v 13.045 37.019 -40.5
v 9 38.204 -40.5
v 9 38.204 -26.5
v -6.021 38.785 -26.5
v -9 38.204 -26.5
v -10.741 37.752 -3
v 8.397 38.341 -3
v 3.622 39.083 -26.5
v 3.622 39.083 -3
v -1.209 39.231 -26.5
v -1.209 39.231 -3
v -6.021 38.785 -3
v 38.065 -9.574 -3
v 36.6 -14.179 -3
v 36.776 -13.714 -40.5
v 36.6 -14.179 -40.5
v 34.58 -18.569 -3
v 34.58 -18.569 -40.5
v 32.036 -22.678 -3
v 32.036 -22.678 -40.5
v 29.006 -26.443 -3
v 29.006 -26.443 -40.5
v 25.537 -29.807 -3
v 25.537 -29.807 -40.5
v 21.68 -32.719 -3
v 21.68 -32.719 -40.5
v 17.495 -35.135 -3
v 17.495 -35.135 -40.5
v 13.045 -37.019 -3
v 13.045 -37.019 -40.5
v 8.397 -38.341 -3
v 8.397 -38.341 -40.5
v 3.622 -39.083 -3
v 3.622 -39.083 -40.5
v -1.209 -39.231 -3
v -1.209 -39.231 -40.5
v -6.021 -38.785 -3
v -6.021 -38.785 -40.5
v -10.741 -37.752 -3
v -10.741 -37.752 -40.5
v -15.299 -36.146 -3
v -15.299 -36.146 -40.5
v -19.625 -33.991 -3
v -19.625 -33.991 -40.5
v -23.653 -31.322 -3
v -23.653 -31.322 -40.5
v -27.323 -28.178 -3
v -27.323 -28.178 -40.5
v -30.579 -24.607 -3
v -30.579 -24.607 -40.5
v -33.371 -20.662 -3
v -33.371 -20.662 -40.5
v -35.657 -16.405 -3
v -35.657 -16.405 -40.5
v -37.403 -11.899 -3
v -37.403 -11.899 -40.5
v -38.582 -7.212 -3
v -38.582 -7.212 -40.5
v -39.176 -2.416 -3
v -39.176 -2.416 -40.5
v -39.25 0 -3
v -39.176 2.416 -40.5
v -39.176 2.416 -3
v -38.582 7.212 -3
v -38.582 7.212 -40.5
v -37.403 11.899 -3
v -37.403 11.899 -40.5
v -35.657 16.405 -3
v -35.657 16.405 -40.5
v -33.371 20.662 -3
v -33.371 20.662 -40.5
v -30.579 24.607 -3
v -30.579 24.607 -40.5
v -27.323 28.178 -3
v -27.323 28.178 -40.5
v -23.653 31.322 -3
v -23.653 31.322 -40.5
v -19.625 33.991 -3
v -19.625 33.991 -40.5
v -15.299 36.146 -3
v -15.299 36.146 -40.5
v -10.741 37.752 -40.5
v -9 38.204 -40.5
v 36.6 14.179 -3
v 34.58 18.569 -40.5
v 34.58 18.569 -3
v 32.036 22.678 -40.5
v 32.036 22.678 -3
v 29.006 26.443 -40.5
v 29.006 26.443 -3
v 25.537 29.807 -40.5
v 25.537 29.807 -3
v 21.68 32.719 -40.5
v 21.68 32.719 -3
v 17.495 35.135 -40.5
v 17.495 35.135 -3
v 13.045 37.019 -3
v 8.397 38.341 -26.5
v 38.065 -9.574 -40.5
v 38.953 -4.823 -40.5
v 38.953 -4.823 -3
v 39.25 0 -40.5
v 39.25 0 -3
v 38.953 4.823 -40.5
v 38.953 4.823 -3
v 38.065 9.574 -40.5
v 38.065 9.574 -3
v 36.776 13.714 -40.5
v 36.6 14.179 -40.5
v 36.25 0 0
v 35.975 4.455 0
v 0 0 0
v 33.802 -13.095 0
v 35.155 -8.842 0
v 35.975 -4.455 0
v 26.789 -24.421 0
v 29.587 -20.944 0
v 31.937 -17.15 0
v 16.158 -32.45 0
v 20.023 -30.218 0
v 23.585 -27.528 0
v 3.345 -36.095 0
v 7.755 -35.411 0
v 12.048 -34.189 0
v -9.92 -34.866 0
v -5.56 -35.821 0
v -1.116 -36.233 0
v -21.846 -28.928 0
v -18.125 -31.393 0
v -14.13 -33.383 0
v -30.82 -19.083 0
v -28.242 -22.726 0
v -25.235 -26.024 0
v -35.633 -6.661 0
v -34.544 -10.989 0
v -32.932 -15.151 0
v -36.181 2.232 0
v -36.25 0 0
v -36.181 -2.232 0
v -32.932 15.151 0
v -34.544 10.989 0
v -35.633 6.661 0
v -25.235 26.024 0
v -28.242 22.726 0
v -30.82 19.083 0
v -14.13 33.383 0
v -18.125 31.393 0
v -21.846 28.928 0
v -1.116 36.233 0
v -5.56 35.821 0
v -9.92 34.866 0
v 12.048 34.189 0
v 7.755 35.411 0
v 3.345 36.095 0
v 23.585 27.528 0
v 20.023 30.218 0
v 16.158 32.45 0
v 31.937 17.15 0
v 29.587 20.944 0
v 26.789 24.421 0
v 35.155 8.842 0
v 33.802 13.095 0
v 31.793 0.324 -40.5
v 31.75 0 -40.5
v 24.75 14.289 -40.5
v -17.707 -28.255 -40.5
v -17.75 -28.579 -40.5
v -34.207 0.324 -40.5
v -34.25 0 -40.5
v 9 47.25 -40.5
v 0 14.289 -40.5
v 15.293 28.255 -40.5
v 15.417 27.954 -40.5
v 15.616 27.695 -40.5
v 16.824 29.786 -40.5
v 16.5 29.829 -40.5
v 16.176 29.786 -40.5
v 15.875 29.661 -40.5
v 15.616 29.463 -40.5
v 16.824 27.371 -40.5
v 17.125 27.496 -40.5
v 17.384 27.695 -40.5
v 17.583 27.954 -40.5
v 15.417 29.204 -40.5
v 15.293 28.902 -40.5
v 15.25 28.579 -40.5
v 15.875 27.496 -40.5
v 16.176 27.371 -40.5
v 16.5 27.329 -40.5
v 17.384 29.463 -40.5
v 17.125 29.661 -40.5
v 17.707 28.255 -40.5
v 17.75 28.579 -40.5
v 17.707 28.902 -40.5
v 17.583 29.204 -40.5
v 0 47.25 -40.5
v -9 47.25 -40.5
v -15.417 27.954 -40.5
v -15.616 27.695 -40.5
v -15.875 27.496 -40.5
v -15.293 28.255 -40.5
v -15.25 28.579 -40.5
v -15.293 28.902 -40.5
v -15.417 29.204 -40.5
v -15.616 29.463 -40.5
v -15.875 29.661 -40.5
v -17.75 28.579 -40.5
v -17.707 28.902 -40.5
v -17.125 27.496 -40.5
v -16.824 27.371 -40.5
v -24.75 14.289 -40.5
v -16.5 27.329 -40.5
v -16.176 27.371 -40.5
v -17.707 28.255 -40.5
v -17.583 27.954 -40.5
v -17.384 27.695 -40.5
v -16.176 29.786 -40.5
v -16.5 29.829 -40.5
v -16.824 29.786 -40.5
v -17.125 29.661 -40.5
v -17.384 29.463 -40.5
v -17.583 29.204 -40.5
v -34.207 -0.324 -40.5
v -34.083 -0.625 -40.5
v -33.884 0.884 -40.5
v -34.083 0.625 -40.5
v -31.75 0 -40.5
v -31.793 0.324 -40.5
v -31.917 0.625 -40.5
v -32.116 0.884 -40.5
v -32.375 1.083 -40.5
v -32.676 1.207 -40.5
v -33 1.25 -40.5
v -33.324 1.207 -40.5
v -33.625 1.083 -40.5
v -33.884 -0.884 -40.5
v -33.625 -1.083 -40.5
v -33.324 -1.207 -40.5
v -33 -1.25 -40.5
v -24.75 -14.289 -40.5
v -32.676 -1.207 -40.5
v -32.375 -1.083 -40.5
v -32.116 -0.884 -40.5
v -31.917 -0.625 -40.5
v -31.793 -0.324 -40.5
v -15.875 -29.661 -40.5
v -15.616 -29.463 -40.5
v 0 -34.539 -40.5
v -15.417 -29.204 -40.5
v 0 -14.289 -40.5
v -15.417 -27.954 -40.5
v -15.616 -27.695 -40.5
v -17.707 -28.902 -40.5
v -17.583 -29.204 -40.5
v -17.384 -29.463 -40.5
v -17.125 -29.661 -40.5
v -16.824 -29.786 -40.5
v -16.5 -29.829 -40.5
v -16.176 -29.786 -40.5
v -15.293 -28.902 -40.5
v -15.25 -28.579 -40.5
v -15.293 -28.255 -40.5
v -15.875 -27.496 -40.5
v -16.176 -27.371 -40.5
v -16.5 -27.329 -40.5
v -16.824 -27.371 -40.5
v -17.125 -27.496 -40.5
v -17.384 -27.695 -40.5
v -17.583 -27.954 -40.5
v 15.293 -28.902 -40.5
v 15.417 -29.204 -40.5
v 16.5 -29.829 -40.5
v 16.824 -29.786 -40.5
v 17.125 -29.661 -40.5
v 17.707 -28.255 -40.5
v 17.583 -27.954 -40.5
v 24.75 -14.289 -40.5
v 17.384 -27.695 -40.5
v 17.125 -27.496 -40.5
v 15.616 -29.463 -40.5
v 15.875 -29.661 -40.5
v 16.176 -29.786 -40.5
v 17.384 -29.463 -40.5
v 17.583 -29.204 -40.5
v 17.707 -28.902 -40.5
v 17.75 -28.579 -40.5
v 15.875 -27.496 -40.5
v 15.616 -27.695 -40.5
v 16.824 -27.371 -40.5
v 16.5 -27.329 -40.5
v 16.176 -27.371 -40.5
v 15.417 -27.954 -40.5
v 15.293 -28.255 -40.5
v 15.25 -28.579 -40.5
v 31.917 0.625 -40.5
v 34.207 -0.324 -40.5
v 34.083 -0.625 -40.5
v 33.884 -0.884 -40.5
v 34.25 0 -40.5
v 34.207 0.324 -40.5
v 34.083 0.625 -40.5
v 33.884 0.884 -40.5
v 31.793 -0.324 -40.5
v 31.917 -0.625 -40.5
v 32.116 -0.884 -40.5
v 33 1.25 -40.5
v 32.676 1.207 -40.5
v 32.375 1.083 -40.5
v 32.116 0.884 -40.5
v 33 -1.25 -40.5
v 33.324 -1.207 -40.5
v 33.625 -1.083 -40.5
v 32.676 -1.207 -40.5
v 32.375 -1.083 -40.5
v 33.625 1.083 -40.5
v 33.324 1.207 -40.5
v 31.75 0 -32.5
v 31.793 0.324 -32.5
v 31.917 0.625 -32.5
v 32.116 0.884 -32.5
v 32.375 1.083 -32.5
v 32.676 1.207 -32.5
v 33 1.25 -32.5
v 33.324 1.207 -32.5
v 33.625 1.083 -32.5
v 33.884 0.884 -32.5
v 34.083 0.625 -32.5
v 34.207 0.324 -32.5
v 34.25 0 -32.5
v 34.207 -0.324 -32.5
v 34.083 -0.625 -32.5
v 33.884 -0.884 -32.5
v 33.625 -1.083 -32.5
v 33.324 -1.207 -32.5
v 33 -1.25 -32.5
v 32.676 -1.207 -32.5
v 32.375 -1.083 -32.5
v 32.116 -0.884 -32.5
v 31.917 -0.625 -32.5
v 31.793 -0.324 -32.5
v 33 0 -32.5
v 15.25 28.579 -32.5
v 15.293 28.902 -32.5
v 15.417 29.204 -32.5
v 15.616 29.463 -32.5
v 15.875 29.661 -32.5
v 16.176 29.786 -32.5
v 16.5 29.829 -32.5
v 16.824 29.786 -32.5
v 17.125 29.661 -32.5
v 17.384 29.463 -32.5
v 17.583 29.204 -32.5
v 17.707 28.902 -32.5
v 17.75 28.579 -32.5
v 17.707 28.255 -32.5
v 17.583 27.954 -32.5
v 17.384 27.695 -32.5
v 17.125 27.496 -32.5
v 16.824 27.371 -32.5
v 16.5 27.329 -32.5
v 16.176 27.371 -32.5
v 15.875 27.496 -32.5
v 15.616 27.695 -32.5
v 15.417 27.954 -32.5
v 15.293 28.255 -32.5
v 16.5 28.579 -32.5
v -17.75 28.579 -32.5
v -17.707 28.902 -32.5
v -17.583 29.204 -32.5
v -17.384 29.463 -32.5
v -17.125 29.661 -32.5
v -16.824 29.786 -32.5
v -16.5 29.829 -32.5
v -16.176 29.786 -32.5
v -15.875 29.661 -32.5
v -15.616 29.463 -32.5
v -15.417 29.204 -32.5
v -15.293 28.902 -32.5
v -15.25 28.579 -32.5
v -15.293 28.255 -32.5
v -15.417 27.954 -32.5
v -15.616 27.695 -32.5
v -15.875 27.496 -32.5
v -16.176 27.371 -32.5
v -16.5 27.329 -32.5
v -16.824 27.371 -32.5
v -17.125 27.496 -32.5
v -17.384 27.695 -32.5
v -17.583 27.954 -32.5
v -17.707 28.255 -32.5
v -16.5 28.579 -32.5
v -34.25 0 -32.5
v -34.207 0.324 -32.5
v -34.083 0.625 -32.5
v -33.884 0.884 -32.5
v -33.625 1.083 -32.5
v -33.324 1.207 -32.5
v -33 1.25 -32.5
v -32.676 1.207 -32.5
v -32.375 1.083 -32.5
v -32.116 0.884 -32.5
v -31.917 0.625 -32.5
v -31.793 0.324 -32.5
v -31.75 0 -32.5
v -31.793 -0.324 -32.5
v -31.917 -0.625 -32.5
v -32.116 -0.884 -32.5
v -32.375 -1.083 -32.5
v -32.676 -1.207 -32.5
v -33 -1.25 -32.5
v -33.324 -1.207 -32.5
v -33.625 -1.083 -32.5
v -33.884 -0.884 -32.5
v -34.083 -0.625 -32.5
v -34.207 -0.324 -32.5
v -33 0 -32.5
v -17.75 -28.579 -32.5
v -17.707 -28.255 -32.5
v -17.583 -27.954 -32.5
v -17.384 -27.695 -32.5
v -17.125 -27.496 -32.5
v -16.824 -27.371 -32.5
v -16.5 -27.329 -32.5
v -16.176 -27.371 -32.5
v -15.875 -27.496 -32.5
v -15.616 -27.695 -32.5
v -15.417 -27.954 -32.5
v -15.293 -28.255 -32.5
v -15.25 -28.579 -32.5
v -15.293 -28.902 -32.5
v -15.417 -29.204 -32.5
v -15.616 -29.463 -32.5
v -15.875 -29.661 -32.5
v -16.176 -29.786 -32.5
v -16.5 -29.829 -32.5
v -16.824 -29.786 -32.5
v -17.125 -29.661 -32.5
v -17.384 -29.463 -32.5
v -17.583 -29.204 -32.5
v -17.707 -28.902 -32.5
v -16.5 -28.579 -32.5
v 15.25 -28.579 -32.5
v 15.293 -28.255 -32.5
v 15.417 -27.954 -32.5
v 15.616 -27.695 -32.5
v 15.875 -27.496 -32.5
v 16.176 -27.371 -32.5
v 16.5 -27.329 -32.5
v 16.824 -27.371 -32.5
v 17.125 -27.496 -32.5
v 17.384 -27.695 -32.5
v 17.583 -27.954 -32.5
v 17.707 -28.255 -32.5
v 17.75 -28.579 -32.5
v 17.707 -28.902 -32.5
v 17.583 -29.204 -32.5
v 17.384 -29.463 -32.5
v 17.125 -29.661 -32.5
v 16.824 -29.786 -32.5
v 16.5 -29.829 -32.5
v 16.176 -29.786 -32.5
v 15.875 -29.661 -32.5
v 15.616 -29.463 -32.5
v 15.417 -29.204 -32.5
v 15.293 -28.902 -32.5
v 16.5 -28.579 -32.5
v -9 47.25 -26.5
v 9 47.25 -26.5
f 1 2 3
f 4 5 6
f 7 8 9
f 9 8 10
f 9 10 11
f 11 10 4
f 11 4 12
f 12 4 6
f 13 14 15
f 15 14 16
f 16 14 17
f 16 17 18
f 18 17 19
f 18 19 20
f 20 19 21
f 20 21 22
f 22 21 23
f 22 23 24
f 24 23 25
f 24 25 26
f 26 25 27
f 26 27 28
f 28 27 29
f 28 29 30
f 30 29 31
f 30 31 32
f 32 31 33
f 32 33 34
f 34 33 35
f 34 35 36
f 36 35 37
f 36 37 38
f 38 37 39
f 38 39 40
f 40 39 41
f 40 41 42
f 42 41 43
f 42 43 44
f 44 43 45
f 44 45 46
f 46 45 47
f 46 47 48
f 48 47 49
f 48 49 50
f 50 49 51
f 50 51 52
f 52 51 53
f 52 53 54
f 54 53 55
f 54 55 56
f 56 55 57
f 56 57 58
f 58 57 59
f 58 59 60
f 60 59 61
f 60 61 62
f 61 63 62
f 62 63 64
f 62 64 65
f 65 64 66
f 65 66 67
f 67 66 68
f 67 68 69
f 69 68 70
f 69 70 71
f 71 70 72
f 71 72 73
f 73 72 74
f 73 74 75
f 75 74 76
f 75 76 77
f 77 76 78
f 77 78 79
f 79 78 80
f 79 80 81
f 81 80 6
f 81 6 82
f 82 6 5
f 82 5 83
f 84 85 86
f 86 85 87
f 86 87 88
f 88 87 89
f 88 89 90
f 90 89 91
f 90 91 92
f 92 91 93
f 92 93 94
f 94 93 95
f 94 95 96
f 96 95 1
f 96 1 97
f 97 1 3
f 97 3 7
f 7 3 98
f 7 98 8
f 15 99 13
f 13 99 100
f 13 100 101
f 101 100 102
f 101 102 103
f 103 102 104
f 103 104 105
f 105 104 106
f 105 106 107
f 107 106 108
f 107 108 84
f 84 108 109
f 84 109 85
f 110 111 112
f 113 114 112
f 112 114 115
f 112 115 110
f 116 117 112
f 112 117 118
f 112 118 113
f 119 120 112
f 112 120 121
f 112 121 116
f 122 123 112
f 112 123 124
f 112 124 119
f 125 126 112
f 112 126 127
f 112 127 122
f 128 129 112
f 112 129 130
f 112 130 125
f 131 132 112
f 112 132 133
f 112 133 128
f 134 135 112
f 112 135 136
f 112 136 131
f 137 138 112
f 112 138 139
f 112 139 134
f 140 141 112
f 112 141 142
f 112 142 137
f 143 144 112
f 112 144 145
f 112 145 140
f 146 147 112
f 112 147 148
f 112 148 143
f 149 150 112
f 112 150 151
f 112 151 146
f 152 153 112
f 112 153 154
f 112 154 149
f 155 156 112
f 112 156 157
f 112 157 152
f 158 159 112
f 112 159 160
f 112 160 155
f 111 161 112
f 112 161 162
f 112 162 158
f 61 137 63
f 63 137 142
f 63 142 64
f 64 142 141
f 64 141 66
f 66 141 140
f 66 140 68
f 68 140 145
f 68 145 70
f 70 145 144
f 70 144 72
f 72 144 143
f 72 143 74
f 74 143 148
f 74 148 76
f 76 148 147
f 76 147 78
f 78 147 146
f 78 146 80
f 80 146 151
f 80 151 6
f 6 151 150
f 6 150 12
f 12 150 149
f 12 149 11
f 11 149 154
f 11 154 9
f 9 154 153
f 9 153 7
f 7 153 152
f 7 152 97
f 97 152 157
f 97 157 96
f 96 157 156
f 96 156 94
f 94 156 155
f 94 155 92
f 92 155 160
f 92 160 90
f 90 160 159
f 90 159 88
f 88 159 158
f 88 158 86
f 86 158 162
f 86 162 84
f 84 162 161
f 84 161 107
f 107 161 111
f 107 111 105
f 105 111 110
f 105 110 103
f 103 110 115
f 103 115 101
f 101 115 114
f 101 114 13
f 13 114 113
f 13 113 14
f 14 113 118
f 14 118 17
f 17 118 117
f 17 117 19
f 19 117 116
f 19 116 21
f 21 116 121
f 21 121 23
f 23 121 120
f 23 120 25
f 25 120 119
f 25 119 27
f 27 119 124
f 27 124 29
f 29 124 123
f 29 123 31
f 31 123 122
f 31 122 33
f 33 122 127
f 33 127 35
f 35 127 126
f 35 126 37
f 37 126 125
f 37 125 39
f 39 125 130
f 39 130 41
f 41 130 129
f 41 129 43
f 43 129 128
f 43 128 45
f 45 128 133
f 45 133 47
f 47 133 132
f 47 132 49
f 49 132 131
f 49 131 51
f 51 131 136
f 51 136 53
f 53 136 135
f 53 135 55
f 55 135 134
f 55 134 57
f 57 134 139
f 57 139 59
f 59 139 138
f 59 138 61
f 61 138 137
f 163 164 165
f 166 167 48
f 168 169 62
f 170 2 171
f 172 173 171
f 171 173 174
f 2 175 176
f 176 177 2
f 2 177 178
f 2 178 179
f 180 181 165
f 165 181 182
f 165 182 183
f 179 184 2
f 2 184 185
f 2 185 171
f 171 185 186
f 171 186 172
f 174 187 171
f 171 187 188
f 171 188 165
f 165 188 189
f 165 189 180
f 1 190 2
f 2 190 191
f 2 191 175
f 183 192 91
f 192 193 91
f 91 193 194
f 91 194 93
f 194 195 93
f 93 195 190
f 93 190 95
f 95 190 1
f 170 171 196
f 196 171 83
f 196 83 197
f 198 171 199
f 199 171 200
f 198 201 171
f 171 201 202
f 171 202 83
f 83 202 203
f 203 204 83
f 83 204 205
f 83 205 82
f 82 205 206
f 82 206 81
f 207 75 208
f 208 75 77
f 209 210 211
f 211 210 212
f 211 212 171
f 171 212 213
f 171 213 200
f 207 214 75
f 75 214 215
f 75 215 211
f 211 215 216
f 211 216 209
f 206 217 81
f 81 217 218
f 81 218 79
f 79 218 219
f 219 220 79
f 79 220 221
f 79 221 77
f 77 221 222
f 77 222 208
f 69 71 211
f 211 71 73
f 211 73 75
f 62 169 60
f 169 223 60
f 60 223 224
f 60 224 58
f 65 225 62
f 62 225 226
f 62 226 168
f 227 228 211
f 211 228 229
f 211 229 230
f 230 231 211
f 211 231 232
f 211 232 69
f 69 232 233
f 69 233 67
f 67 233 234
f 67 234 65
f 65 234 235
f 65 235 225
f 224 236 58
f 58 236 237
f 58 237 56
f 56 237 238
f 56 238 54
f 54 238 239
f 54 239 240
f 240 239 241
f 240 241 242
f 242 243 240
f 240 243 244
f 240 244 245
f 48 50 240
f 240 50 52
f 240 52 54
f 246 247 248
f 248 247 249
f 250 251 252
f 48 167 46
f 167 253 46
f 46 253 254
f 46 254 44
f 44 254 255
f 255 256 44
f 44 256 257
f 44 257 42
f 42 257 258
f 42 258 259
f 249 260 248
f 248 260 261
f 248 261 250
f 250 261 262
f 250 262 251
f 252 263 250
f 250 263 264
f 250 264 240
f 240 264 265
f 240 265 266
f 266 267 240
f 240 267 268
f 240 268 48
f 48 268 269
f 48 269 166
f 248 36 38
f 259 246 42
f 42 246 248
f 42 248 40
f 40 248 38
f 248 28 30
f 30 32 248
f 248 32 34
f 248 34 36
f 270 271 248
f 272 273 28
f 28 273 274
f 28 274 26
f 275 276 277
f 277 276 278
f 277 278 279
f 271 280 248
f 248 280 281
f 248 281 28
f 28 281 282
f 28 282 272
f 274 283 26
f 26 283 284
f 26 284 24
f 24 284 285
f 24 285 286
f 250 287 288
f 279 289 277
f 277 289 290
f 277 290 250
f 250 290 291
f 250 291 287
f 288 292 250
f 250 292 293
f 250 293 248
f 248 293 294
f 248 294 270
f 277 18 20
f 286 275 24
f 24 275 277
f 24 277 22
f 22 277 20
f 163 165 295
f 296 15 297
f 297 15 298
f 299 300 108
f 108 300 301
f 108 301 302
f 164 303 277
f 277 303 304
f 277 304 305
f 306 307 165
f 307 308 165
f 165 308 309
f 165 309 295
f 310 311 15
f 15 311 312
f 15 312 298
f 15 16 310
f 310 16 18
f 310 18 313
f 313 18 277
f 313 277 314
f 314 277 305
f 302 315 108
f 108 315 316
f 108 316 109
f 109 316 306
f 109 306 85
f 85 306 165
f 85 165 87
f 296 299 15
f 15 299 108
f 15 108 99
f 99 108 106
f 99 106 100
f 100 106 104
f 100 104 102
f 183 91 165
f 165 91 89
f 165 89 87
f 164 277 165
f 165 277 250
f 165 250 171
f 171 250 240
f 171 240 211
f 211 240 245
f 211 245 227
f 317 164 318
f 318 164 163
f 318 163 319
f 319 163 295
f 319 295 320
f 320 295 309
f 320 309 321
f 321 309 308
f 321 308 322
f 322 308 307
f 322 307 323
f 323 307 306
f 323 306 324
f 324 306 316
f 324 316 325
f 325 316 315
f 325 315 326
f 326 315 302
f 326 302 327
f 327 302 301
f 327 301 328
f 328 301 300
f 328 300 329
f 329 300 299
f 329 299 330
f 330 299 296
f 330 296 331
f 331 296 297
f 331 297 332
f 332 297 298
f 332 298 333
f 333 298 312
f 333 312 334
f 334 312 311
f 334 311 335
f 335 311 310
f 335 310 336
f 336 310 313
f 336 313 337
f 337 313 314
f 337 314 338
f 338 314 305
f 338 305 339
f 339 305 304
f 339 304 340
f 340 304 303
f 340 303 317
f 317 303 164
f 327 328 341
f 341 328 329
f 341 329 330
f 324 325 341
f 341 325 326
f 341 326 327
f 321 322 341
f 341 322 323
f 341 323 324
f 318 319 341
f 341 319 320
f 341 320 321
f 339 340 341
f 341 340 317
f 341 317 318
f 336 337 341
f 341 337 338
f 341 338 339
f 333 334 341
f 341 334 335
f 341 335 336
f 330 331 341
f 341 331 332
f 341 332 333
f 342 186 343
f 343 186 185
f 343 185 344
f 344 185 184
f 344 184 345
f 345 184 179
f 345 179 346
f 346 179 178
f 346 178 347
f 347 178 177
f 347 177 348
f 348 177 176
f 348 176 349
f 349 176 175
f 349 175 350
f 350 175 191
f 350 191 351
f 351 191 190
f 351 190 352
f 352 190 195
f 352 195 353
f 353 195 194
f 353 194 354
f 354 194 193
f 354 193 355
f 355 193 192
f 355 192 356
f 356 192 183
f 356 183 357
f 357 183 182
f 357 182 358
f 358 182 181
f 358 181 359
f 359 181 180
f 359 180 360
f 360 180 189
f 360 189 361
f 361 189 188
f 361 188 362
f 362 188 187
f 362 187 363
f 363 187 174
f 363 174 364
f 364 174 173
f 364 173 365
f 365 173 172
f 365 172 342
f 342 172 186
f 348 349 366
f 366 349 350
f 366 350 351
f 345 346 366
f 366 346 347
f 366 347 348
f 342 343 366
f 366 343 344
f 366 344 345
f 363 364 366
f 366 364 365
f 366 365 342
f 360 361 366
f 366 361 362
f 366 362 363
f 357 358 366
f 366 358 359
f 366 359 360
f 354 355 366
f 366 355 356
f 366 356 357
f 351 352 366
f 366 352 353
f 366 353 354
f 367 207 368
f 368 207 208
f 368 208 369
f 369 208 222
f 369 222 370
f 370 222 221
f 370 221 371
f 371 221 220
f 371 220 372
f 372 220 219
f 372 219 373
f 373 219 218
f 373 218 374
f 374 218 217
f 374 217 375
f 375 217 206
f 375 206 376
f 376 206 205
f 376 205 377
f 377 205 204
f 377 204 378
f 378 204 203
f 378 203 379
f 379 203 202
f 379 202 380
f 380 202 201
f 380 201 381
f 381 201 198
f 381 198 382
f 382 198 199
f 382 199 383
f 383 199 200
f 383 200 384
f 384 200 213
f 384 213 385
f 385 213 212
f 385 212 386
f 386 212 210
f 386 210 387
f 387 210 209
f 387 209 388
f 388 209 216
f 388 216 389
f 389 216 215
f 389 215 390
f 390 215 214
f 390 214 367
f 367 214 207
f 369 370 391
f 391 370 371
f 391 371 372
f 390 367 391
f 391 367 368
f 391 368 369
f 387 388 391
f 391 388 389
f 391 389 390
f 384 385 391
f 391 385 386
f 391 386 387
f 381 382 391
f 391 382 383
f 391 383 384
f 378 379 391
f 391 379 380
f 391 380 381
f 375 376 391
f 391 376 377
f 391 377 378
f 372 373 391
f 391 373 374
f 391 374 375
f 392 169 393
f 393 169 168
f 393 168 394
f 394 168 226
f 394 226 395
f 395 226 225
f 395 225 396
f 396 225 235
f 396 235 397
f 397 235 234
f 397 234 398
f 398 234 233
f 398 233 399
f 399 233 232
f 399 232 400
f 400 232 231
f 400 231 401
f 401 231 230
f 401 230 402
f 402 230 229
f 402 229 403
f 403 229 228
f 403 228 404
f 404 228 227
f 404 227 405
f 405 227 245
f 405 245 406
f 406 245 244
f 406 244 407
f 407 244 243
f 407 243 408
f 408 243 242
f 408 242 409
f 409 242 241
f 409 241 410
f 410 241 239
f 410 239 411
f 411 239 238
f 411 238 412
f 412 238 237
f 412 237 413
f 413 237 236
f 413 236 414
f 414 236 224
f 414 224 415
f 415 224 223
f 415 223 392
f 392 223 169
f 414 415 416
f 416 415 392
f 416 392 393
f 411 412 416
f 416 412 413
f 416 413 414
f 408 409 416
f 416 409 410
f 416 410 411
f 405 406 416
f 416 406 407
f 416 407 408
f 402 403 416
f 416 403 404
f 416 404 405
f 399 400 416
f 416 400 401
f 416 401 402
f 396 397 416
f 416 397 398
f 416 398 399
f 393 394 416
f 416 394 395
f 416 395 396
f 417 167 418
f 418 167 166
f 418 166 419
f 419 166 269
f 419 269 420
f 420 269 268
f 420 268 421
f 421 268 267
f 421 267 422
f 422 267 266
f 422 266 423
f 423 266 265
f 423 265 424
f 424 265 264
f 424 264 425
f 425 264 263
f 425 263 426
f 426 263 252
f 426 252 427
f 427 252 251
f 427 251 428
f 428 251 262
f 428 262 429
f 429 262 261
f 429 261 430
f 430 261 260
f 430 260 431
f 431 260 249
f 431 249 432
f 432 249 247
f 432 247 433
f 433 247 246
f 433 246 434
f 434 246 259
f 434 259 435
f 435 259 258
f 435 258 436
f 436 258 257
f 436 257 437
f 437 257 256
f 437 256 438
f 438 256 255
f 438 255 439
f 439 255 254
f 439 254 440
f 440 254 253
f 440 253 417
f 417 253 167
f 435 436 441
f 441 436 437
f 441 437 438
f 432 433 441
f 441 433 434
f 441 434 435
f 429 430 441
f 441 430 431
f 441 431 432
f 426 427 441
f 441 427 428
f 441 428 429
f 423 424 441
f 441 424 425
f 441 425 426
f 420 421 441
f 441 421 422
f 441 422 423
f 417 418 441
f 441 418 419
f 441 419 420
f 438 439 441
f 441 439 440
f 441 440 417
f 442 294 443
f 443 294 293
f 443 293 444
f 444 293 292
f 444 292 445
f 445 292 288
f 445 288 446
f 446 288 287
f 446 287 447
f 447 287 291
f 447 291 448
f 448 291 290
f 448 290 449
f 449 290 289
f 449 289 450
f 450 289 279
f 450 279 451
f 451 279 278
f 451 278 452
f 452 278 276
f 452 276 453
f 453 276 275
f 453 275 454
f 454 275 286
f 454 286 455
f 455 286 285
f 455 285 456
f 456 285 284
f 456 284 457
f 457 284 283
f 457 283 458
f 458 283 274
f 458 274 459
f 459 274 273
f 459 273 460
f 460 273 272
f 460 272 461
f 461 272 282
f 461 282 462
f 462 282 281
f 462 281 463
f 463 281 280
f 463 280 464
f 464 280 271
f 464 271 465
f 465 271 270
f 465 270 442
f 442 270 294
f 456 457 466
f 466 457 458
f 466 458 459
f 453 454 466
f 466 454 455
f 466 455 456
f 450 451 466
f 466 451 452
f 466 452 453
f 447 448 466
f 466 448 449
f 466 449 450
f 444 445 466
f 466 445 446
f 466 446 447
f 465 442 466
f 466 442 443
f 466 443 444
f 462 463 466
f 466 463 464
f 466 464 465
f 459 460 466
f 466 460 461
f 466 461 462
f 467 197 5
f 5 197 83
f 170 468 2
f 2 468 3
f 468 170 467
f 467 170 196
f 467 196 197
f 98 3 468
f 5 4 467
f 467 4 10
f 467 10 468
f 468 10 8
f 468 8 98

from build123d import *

# Parameters (mm, degrees)
SK_REARHOLE_R           = 1.25
REAR_TAPPED_HOLE_DEPTH  = 8
REAR_HOLE_PATTERN_COUNT = 6
SK_CONNECTOR_W          = 18
SK_CONNECTOR_H          = 12
CONNECTOR_ZONE_DEPTH    = 14


with BuildPart() as part:
    # SK_Body → Housing_Body (revolve)
    with BuildSketch(Plane(origin=(0, 0, 0), x_dir=(1, 0, 0), z_dir=(0, 1, 0))):
        Polygon((0, 0), (36.25, 0), (39.25, 3), (39.25, 40.5), (36.25, 40.5), (0, 40.5), align=None)
    revolve(axis=Axis((0, 0, 10), (0, 0, -1)))

    # SK_RearHole → Rear_Tapped_Hole (cut)
    with BuildSketch(Plane.XY.offset(-40.5)):
        with Locations((33, 0)):
            Circle(SK_REARHOLE_R)
    rear_tapped_hole = extrude(amount=REAR_TAPPED_HOLE_DEPTH, mode=Mode.SUBTRACT)

    # Rear_Hole_Pattern: Rear_Tapped_Hole ×6 about axis
    rear_hole_pattern_axis = Axis((0, 0, -42.525), (0, 0, 1))
    for i in range(1, REAR_HOLE_PATTERN_COUNT):
        add(rear_tapped_hole.rotate(rear_hole_pattern_axis, i * 360 / REAR_HOLE_PATTERN_COUNT), mode=Mode.SUBTRACT)

    # SK_Connector → Connector_Zone (add)
    with BuildSketch(Plane.XY.offset(-40.5)):
        with Locations((0, 41.25)):
            Rectangle(SK_CONNECTOR_W, SK_CONNECTOR_H)
    extrude(amount=CONNECTOR_ZONE_DEPTH)


solid = part.part
